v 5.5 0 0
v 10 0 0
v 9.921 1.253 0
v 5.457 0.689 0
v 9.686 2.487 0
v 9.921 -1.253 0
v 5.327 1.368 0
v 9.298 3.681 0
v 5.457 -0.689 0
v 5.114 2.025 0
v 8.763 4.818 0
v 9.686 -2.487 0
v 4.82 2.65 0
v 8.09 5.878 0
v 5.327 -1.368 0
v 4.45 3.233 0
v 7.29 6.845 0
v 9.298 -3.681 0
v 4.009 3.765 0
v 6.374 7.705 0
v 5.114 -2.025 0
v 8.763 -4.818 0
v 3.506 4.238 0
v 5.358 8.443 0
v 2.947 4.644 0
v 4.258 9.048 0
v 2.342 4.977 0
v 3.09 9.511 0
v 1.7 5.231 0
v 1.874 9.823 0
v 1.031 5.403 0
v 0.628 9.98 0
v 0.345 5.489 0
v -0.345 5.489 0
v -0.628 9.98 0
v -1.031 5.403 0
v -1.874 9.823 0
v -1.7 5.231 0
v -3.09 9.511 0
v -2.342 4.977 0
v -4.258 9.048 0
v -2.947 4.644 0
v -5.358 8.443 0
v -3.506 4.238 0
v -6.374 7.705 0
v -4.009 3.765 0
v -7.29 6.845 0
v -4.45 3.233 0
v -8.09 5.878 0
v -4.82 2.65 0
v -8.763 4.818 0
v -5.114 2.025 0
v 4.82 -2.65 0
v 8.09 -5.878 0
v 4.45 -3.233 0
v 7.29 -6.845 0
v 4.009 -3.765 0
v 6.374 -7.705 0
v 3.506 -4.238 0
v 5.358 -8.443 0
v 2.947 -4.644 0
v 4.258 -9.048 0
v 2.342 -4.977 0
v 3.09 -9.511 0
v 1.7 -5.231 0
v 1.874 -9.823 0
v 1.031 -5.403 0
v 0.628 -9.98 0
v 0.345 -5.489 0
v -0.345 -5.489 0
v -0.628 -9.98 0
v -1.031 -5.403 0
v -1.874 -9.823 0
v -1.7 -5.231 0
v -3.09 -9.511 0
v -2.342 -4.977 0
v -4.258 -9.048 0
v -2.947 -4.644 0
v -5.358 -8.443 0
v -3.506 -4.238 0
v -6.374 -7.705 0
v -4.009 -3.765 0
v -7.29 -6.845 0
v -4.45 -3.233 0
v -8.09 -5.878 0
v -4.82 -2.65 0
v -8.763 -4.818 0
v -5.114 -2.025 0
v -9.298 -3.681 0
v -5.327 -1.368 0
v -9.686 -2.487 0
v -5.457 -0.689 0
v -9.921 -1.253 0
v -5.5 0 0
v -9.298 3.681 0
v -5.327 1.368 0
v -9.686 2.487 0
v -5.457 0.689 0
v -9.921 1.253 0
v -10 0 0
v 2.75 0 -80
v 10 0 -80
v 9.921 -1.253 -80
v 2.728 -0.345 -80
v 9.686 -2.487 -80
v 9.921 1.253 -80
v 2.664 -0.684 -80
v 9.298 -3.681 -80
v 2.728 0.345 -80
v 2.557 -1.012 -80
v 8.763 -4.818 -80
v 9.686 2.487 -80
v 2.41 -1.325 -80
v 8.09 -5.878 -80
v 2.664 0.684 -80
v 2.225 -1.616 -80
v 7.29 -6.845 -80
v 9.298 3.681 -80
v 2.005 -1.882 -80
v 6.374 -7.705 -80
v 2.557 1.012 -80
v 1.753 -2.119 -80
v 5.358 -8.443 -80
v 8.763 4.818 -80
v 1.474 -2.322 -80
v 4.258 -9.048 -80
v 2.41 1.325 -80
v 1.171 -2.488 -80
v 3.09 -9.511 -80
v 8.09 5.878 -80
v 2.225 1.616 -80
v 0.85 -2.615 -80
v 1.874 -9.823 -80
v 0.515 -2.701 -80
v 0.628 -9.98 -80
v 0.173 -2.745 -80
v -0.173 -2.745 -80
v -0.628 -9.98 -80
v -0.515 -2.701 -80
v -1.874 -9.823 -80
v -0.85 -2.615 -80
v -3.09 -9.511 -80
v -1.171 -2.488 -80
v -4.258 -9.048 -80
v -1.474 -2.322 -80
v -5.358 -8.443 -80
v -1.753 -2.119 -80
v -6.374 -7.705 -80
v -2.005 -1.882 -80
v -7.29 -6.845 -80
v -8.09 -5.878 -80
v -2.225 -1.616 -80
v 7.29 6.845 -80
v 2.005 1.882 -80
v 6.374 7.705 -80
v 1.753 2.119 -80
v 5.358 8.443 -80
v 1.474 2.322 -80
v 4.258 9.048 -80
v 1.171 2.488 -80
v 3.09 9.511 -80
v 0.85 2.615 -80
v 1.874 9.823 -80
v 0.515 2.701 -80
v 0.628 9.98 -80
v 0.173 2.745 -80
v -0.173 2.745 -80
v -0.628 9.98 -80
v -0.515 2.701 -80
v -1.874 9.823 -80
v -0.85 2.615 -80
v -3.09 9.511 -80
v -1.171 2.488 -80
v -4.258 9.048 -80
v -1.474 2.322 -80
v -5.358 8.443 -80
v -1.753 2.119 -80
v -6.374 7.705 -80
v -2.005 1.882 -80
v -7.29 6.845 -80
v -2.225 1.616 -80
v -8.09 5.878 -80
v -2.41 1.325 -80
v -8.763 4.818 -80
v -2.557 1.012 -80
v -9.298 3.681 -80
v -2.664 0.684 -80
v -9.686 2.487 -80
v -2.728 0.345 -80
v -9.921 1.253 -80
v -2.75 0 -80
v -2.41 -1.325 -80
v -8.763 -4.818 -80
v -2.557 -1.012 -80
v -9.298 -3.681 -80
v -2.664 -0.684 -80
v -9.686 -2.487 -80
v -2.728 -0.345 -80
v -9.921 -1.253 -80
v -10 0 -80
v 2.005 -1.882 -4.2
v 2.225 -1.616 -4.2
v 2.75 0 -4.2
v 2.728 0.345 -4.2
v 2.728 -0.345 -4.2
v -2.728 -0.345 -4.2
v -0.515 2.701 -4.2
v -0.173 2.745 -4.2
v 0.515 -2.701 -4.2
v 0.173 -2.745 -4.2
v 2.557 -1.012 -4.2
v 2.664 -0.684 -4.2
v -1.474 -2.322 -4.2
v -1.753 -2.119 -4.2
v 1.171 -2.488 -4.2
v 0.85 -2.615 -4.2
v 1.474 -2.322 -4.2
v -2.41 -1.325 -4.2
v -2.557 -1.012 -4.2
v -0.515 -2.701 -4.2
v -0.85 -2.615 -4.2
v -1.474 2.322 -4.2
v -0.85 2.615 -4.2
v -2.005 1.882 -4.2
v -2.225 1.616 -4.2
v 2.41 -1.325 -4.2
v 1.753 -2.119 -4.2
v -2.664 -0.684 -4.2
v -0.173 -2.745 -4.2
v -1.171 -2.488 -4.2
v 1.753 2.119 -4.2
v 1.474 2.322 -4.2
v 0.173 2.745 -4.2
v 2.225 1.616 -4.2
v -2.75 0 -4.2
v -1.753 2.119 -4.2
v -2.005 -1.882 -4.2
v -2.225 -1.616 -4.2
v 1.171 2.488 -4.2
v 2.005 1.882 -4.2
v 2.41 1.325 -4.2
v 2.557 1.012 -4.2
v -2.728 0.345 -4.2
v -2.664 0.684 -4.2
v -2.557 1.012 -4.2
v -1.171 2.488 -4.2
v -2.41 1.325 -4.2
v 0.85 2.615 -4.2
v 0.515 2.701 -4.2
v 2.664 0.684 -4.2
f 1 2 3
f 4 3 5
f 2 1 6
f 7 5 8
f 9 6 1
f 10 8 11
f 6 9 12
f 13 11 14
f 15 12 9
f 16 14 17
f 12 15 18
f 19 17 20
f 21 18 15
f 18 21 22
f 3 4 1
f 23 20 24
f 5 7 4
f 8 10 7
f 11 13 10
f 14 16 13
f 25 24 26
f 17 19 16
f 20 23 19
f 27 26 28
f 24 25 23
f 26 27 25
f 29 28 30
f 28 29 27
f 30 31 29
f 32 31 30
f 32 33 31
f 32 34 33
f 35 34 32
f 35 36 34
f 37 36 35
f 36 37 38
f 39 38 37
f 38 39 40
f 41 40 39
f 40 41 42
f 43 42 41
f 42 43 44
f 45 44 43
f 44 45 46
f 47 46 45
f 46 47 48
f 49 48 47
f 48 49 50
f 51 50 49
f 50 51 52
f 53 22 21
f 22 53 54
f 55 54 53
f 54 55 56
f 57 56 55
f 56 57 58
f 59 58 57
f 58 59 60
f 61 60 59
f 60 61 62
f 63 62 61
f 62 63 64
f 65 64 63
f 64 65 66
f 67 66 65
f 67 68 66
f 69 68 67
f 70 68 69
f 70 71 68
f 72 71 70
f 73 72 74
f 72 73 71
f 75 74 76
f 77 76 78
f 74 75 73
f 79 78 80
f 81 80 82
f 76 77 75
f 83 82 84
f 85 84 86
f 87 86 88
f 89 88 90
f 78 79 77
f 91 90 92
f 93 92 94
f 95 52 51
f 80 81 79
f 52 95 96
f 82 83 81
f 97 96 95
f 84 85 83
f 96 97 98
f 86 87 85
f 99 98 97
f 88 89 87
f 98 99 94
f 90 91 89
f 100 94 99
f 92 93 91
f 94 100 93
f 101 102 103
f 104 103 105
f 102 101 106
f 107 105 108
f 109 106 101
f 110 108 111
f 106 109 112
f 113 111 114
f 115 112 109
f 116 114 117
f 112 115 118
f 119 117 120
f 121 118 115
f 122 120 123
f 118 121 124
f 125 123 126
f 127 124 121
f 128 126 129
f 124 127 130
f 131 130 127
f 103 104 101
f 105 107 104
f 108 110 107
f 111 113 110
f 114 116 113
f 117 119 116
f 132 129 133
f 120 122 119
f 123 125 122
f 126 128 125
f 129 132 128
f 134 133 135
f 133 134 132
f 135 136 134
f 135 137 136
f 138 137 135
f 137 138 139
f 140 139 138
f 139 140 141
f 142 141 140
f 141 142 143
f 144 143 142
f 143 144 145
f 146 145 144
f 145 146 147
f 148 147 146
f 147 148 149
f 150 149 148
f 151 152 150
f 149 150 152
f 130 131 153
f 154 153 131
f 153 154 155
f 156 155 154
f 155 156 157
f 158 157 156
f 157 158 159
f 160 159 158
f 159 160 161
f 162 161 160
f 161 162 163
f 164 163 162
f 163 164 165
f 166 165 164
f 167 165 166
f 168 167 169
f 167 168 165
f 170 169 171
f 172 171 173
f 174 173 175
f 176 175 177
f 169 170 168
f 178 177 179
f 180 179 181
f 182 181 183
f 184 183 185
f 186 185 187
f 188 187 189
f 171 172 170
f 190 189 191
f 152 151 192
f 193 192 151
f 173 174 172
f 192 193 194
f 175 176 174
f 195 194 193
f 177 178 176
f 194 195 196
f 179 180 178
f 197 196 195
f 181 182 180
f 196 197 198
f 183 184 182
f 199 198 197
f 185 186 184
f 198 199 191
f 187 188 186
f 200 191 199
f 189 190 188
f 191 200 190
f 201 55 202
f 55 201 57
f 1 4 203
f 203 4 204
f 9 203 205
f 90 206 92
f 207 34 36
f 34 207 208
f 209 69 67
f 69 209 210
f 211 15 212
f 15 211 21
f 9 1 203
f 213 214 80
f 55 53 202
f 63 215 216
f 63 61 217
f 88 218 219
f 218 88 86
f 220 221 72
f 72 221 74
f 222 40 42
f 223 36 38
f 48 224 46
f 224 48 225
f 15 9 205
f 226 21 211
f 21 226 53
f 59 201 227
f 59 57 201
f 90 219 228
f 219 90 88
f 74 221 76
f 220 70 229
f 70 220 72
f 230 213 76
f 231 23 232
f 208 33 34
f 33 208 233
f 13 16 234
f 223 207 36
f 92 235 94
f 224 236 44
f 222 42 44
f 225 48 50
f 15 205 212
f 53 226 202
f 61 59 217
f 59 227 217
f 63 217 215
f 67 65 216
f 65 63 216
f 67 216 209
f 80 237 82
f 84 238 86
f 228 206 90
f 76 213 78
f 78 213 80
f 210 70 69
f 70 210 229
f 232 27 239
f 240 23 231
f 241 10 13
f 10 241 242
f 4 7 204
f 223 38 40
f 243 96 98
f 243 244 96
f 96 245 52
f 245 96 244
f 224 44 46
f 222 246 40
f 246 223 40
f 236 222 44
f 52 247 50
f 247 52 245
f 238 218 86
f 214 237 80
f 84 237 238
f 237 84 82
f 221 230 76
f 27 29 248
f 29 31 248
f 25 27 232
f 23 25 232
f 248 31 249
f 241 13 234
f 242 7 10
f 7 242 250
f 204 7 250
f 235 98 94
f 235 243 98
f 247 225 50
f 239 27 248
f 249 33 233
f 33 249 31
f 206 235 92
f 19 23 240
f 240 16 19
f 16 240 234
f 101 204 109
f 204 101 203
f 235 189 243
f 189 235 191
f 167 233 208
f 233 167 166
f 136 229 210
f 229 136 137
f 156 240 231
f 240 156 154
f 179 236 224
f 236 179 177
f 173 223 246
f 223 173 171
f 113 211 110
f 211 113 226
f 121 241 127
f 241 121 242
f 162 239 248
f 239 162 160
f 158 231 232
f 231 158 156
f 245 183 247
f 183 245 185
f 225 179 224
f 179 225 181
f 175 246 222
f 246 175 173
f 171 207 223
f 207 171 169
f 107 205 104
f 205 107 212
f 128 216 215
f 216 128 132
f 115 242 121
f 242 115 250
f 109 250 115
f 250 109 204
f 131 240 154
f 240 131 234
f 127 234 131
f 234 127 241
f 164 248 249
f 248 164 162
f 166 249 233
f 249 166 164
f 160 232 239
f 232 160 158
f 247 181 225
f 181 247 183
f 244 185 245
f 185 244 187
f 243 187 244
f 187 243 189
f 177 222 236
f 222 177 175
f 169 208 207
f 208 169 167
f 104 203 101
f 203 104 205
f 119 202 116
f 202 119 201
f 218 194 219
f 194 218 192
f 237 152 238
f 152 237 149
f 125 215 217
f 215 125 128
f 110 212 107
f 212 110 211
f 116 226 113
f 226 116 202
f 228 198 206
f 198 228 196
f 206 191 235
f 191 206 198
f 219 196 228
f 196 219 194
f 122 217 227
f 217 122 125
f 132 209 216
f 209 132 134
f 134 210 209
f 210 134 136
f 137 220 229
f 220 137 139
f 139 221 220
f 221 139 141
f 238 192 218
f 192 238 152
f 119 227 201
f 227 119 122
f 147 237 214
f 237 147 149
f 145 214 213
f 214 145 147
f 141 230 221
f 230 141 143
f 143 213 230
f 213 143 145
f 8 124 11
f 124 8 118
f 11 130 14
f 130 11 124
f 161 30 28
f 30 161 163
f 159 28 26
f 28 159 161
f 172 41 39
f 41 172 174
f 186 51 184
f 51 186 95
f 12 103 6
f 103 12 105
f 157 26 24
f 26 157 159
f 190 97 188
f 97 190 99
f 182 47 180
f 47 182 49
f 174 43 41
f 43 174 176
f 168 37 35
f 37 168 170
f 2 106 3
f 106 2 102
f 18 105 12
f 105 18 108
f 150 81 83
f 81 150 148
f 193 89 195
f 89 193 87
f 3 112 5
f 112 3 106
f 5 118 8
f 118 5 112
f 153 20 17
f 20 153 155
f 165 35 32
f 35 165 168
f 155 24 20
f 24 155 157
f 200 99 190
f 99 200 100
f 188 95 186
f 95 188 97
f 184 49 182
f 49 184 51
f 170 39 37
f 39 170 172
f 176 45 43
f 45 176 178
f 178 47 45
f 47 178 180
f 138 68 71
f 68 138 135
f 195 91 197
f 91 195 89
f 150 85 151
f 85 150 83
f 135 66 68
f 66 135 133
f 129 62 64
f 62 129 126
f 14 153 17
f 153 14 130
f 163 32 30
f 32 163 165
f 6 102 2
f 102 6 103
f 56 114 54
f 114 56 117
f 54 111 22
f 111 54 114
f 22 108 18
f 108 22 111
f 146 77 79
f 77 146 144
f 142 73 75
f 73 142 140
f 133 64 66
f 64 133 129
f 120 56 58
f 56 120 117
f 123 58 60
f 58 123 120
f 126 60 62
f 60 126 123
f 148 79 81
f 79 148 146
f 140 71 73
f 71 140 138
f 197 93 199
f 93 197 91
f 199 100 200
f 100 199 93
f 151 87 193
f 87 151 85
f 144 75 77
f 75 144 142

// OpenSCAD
$fn = 50;


difference() {
	union() {
		translate(v = [0, 0, -80.0000000000]) {
			cylinder(h = 80, r = 10.0000000000);
		}
		cylinder(h = 0, r = 13.0000000000);
	}
	union() {
		translate(v = [0, 0, 0]) {
			rotate(a = [0, 0, 0]) {
				difference() {
					union() {
						#translate(v = [0, 0, -80.0000000000]) {
							cylinder(h = 80, r = 2.2500000000);
						}
						#translate(v = [0, 0, -4.2000000000]) {
							cylinder(h = 4.2000000000, r1 = 2.7500000000, r2 = 5.5000000000);
						}
						#translate(v = [0, 0, -80.0000000000]) {
							cylinder(h = 80, r = 2.7500000000);
						}
						#translate(v = [0, 0, -80.0000000000]) {
							cylinder(h = 80, r = 2.2500000000);
						}
					}
					union();
				}
			}
		}
	}
}
